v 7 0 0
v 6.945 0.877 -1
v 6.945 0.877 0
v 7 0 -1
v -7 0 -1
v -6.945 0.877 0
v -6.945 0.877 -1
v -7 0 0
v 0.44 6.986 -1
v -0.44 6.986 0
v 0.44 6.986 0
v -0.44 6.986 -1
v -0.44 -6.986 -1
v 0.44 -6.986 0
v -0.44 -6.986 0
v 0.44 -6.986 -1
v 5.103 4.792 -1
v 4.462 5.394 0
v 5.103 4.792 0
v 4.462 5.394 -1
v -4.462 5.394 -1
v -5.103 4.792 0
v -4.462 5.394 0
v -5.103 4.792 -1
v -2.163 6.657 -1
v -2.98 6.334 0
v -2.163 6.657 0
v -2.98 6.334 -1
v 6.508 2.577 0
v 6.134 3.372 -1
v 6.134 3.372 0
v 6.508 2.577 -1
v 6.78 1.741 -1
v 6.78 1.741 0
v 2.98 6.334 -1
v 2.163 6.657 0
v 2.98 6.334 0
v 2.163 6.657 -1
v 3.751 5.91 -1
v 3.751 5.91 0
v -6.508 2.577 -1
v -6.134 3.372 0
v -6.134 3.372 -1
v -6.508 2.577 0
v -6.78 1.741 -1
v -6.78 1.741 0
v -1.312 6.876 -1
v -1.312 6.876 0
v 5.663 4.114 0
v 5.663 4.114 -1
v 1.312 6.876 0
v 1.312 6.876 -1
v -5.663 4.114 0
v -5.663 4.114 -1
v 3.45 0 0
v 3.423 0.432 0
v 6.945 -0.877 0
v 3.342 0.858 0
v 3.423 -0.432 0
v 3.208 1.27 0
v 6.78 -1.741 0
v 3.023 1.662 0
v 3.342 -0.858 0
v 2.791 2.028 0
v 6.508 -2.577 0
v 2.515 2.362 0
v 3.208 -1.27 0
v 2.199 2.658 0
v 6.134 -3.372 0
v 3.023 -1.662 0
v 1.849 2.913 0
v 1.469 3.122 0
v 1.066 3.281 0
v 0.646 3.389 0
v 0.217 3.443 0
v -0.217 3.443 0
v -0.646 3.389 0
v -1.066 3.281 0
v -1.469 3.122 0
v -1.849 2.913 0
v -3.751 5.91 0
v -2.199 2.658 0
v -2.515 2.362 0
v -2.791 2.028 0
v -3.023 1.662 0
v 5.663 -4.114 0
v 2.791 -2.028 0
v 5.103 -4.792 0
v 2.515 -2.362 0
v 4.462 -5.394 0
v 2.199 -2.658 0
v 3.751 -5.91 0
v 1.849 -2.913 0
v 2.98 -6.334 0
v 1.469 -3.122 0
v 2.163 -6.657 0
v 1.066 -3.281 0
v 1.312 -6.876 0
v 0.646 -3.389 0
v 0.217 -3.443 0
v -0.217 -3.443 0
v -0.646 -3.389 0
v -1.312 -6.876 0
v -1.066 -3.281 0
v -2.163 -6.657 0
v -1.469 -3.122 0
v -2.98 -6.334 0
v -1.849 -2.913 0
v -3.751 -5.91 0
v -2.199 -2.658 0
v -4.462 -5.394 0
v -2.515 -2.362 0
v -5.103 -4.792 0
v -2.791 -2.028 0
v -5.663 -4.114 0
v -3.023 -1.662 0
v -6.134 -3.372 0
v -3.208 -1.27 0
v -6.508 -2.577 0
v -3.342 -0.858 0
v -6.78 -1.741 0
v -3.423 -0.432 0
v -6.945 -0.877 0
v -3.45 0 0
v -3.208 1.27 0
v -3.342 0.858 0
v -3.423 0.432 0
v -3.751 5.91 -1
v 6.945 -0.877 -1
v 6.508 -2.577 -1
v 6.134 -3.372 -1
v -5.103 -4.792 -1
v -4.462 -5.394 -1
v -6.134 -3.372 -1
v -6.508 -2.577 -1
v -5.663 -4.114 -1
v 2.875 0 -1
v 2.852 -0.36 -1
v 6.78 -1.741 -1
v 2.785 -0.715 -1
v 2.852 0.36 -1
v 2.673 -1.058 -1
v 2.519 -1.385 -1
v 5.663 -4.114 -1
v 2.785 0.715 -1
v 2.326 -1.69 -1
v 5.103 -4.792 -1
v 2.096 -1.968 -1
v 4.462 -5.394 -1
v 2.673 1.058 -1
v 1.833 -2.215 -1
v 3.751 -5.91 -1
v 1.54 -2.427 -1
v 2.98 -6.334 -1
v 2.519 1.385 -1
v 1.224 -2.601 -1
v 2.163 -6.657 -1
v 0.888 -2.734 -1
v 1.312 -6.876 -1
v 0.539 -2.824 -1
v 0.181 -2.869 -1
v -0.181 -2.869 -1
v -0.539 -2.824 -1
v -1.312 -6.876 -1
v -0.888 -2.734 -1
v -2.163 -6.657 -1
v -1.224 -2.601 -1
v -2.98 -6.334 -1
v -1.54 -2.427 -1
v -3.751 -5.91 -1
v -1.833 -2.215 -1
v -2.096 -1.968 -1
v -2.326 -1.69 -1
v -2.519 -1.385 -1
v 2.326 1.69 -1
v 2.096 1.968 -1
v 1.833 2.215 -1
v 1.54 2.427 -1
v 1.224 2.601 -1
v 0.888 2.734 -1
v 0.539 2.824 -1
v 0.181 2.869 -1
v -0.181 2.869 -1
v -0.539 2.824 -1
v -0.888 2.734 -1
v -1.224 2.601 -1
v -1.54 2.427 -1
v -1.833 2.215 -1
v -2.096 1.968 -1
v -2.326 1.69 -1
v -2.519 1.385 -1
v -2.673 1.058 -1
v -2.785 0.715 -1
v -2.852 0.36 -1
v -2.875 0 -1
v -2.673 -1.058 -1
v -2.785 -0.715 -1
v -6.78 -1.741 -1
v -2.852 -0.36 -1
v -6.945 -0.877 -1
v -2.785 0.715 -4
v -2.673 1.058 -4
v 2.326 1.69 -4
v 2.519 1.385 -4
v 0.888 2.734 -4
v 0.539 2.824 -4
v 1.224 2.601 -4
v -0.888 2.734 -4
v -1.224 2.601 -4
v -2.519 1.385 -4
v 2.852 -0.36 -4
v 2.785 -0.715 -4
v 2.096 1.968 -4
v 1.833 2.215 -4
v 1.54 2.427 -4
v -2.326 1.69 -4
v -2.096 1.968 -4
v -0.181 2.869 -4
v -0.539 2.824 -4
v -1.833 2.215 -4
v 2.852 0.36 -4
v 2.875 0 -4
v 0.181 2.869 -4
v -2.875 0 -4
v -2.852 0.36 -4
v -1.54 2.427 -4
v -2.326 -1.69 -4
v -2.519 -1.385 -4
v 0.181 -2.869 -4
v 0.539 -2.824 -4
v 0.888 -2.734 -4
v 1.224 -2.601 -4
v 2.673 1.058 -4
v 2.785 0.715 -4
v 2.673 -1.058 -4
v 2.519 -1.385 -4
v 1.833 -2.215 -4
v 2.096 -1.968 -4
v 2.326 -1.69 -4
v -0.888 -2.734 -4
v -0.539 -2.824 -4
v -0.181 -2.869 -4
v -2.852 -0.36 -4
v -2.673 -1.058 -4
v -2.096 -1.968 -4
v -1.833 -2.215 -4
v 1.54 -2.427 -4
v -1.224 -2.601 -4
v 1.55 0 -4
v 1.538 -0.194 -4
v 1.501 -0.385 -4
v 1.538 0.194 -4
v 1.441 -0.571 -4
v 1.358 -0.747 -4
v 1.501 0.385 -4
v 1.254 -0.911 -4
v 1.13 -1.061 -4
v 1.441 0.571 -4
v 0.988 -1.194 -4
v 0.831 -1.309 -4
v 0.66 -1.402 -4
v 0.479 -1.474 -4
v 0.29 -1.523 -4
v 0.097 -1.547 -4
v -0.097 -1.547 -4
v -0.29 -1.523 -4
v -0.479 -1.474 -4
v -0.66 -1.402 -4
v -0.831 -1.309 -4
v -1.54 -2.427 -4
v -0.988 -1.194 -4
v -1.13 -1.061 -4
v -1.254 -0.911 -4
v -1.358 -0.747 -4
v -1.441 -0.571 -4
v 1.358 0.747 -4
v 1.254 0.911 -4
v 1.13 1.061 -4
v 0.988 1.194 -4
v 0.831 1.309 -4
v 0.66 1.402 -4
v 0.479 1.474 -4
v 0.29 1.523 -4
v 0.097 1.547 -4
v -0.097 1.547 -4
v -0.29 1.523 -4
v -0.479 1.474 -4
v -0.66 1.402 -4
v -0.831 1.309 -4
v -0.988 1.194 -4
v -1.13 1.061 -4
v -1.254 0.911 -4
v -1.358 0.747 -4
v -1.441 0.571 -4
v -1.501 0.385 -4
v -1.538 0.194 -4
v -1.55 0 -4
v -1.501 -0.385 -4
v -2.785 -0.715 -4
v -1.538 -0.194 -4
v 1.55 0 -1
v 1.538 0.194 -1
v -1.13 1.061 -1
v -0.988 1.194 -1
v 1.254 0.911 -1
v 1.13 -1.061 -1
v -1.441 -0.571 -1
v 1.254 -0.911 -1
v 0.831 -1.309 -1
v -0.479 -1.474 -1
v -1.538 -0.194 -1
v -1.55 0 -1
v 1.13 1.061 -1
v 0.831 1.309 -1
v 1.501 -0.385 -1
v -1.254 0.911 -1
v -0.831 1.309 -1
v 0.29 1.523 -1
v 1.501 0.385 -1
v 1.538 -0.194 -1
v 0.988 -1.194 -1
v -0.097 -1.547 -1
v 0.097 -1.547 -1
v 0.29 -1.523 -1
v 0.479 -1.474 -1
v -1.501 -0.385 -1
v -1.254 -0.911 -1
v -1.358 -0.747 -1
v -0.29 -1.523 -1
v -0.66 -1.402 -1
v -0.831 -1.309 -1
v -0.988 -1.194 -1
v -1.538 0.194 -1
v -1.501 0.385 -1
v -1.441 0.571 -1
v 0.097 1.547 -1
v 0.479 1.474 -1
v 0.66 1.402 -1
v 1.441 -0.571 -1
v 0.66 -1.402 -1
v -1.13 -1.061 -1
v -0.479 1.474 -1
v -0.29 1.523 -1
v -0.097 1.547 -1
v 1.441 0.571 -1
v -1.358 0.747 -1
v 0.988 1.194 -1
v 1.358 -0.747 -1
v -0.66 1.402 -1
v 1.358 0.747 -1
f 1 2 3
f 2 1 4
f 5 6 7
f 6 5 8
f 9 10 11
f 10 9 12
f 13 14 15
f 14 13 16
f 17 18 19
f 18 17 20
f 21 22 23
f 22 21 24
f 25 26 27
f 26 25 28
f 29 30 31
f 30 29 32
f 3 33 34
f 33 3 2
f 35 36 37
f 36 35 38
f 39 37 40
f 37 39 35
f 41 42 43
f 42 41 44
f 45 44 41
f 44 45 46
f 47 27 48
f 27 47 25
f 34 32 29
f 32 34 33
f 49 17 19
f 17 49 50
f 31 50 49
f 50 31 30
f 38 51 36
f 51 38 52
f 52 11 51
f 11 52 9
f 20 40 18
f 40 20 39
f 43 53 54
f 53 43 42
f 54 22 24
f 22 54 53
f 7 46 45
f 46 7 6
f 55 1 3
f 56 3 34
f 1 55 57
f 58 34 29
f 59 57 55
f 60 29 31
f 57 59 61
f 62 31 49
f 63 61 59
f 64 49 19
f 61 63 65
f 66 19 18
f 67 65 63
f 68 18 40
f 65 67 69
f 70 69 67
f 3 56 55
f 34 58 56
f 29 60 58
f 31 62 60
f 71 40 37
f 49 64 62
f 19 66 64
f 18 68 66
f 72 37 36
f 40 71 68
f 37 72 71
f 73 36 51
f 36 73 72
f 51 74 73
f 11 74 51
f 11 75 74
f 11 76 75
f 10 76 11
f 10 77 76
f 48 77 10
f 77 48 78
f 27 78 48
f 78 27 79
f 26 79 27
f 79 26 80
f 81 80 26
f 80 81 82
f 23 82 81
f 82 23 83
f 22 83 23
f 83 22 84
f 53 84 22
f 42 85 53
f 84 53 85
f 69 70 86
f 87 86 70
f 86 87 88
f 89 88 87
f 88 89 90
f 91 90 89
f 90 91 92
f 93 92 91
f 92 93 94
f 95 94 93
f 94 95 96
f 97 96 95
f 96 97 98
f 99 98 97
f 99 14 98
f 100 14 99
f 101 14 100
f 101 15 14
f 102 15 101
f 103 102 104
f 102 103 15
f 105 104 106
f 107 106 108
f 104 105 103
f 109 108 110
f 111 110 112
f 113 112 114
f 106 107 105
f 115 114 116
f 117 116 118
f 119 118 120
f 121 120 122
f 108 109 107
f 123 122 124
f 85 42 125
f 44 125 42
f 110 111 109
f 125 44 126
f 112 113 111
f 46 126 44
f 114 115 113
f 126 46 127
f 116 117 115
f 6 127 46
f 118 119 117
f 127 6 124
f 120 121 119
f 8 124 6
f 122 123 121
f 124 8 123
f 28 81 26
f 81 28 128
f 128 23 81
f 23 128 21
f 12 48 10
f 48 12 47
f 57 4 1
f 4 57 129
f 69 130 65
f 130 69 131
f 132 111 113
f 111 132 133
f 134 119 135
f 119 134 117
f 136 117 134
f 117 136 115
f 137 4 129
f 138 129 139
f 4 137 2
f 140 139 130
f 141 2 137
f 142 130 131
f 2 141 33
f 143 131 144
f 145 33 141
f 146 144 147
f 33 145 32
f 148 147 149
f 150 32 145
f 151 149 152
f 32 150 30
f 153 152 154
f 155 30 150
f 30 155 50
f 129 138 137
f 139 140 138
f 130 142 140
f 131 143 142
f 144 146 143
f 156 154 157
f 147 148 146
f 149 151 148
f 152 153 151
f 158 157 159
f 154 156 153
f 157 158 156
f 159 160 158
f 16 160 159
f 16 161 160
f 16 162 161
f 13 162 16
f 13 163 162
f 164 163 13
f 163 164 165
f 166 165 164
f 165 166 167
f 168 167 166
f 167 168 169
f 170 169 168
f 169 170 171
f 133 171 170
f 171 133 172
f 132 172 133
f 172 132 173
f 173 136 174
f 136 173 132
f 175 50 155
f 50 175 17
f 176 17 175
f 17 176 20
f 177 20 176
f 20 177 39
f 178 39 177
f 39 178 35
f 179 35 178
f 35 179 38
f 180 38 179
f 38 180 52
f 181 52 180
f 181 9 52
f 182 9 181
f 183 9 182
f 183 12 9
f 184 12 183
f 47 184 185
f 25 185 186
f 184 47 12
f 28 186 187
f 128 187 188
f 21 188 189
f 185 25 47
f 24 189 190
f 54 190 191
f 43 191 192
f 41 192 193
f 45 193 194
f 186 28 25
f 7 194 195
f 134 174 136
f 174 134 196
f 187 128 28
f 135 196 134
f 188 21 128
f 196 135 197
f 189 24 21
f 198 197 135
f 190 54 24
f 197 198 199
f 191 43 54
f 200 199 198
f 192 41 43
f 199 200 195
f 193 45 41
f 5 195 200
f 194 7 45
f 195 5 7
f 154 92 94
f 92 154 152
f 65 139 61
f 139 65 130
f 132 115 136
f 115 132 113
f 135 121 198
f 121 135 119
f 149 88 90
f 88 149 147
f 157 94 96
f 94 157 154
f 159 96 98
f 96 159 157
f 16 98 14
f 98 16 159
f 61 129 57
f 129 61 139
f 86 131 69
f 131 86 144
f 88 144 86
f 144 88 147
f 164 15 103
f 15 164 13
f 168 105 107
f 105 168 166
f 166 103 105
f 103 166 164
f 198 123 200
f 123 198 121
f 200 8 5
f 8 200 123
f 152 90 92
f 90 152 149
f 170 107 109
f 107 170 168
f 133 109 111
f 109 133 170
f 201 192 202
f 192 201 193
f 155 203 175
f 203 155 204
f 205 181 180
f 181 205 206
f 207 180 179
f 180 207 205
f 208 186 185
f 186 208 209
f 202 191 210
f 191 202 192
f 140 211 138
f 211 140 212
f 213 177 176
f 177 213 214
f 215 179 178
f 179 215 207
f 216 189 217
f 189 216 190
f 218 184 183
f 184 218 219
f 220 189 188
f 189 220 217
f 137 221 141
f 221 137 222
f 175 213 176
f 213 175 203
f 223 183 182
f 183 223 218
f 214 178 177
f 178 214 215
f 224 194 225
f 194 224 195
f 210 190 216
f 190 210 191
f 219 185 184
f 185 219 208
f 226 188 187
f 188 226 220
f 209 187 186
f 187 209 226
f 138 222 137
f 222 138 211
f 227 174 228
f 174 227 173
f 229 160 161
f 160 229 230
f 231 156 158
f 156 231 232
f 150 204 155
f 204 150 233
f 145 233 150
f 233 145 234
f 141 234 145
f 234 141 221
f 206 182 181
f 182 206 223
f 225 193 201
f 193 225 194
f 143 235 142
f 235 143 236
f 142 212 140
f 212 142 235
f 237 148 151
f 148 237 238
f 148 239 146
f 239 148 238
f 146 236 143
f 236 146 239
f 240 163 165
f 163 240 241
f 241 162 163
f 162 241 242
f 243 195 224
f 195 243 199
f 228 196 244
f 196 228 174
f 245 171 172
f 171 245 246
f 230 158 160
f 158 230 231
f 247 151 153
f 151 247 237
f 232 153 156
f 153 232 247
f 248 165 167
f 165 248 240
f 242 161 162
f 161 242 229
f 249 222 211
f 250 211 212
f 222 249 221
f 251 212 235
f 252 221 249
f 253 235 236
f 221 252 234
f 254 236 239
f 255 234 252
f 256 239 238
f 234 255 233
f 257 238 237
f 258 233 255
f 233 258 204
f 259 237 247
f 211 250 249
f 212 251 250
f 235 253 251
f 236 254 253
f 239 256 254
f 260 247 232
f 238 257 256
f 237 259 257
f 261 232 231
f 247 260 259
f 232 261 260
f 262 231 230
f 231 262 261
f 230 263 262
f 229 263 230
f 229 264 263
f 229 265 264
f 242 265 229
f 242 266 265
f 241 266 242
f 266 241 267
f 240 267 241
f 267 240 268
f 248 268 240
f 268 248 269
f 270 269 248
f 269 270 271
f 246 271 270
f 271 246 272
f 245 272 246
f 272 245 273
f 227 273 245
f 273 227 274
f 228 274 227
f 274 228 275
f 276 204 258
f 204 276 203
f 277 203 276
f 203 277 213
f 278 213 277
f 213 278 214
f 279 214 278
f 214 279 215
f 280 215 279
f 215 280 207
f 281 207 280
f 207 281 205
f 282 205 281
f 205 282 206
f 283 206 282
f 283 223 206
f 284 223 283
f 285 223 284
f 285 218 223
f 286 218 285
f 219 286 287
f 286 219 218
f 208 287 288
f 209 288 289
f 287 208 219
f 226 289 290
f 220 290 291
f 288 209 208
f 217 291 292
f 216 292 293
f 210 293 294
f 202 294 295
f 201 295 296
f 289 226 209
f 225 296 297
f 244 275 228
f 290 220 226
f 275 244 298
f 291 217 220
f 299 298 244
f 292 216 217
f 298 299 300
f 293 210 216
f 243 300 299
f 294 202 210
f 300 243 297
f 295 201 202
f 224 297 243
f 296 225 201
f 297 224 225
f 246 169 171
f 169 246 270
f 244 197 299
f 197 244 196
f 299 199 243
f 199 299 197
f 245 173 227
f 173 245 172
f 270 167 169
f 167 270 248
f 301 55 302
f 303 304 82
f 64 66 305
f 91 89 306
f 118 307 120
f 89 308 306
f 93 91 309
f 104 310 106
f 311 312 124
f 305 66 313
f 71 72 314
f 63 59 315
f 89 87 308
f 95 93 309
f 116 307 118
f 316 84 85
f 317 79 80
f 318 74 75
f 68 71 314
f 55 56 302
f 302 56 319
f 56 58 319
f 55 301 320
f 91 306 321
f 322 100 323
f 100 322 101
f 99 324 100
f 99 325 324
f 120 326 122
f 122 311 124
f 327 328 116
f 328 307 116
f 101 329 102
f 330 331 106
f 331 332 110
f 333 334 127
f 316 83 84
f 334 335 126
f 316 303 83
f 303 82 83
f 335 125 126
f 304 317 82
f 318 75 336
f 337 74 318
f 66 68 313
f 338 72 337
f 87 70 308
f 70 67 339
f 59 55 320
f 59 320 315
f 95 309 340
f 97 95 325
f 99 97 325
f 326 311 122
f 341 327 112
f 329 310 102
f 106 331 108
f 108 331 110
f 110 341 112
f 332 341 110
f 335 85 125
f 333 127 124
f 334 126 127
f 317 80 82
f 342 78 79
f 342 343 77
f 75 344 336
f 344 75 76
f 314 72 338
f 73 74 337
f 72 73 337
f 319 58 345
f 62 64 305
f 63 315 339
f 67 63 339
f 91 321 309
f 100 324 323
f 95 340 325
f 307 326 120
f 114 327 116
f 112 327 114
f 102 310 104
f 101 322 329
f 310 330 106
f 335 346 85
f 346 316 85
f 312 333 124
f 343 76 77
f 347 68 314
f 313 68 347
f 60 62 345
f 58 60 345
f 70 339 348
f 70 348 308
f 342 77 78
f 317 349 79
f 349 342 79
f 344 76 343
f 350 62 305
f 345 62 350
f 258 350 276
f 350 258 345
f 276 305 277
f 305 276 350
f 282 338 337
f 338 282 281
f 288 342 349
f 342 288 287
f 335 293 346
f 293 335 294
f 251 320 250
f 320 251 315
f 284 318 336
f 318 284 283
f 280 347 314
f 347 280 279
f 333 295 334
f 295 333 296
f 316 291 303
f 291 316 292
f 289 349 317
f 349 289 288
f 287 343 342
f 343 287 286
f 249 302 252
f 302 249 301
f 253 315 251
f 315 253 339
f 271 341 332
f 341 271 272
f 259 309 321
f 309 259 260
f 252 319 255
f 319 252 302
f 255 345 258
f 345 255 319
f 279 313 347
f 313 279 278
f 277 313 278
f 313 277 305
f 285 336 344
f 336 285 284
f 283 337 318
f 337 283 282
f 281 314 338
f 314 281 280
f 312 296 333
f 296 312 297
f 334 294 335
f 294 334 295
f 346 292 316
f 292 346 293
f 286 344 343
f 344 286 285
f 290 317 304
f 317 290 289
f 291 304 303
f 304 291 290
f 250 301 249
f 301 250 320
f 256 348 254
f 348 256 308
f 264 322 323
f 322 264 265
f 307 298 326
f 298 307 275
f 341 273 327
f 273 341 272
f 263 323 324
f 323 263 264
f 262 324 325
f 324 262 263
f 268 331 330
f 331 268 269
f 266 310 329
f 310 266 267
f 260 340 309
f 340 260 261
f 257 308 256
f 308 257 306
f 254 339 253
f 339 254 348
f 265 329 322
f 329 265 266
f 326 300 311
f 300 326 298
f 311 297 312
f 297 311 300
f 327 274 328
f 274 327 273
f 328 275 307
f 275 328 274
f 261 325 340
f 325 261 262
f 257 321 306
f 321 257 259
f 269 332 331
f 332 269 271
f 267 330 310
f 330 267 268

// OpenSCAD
$fn = 50;


difference() {
	union() {
		translate(v = [0, 0, -1.0000000000]) {
			cylinder(h = 1.0000000000, r = 7.0000000000);
		}
		#translate(v = [0, 0, -4.0000000000]) {
			cylinder(h = 4.0000000000, r = 2.8750000000);
		}
	}
	union() {
		translate(v = [0, 0, 0]) {
			rotate(a = [0, 0, 0]) {
				difference() {
					union() {
						translate(v = [0, 0, -4.0000000000]) {
							cylinder(h = 4.0000000000, r = 1.2500000000);
						}
						translate(v = [0, 0, -1.0000000000]) {
							cylinder(h = 1.0000000000, r1 = 1.5500000000, r2 = 3.4500000000);
						}
						translate(v = [0, 0, -4.0000000000]) {
							cylinder(h = 4.0000000000, r = 1.5500000000);
						}
						translate(v = [0, 0, -4.0000000000]) {
							cylinder(h = 4.0000000000, r = 1.2500000000);
						}
					}
					union();
				}
			}
		}
	}
}
